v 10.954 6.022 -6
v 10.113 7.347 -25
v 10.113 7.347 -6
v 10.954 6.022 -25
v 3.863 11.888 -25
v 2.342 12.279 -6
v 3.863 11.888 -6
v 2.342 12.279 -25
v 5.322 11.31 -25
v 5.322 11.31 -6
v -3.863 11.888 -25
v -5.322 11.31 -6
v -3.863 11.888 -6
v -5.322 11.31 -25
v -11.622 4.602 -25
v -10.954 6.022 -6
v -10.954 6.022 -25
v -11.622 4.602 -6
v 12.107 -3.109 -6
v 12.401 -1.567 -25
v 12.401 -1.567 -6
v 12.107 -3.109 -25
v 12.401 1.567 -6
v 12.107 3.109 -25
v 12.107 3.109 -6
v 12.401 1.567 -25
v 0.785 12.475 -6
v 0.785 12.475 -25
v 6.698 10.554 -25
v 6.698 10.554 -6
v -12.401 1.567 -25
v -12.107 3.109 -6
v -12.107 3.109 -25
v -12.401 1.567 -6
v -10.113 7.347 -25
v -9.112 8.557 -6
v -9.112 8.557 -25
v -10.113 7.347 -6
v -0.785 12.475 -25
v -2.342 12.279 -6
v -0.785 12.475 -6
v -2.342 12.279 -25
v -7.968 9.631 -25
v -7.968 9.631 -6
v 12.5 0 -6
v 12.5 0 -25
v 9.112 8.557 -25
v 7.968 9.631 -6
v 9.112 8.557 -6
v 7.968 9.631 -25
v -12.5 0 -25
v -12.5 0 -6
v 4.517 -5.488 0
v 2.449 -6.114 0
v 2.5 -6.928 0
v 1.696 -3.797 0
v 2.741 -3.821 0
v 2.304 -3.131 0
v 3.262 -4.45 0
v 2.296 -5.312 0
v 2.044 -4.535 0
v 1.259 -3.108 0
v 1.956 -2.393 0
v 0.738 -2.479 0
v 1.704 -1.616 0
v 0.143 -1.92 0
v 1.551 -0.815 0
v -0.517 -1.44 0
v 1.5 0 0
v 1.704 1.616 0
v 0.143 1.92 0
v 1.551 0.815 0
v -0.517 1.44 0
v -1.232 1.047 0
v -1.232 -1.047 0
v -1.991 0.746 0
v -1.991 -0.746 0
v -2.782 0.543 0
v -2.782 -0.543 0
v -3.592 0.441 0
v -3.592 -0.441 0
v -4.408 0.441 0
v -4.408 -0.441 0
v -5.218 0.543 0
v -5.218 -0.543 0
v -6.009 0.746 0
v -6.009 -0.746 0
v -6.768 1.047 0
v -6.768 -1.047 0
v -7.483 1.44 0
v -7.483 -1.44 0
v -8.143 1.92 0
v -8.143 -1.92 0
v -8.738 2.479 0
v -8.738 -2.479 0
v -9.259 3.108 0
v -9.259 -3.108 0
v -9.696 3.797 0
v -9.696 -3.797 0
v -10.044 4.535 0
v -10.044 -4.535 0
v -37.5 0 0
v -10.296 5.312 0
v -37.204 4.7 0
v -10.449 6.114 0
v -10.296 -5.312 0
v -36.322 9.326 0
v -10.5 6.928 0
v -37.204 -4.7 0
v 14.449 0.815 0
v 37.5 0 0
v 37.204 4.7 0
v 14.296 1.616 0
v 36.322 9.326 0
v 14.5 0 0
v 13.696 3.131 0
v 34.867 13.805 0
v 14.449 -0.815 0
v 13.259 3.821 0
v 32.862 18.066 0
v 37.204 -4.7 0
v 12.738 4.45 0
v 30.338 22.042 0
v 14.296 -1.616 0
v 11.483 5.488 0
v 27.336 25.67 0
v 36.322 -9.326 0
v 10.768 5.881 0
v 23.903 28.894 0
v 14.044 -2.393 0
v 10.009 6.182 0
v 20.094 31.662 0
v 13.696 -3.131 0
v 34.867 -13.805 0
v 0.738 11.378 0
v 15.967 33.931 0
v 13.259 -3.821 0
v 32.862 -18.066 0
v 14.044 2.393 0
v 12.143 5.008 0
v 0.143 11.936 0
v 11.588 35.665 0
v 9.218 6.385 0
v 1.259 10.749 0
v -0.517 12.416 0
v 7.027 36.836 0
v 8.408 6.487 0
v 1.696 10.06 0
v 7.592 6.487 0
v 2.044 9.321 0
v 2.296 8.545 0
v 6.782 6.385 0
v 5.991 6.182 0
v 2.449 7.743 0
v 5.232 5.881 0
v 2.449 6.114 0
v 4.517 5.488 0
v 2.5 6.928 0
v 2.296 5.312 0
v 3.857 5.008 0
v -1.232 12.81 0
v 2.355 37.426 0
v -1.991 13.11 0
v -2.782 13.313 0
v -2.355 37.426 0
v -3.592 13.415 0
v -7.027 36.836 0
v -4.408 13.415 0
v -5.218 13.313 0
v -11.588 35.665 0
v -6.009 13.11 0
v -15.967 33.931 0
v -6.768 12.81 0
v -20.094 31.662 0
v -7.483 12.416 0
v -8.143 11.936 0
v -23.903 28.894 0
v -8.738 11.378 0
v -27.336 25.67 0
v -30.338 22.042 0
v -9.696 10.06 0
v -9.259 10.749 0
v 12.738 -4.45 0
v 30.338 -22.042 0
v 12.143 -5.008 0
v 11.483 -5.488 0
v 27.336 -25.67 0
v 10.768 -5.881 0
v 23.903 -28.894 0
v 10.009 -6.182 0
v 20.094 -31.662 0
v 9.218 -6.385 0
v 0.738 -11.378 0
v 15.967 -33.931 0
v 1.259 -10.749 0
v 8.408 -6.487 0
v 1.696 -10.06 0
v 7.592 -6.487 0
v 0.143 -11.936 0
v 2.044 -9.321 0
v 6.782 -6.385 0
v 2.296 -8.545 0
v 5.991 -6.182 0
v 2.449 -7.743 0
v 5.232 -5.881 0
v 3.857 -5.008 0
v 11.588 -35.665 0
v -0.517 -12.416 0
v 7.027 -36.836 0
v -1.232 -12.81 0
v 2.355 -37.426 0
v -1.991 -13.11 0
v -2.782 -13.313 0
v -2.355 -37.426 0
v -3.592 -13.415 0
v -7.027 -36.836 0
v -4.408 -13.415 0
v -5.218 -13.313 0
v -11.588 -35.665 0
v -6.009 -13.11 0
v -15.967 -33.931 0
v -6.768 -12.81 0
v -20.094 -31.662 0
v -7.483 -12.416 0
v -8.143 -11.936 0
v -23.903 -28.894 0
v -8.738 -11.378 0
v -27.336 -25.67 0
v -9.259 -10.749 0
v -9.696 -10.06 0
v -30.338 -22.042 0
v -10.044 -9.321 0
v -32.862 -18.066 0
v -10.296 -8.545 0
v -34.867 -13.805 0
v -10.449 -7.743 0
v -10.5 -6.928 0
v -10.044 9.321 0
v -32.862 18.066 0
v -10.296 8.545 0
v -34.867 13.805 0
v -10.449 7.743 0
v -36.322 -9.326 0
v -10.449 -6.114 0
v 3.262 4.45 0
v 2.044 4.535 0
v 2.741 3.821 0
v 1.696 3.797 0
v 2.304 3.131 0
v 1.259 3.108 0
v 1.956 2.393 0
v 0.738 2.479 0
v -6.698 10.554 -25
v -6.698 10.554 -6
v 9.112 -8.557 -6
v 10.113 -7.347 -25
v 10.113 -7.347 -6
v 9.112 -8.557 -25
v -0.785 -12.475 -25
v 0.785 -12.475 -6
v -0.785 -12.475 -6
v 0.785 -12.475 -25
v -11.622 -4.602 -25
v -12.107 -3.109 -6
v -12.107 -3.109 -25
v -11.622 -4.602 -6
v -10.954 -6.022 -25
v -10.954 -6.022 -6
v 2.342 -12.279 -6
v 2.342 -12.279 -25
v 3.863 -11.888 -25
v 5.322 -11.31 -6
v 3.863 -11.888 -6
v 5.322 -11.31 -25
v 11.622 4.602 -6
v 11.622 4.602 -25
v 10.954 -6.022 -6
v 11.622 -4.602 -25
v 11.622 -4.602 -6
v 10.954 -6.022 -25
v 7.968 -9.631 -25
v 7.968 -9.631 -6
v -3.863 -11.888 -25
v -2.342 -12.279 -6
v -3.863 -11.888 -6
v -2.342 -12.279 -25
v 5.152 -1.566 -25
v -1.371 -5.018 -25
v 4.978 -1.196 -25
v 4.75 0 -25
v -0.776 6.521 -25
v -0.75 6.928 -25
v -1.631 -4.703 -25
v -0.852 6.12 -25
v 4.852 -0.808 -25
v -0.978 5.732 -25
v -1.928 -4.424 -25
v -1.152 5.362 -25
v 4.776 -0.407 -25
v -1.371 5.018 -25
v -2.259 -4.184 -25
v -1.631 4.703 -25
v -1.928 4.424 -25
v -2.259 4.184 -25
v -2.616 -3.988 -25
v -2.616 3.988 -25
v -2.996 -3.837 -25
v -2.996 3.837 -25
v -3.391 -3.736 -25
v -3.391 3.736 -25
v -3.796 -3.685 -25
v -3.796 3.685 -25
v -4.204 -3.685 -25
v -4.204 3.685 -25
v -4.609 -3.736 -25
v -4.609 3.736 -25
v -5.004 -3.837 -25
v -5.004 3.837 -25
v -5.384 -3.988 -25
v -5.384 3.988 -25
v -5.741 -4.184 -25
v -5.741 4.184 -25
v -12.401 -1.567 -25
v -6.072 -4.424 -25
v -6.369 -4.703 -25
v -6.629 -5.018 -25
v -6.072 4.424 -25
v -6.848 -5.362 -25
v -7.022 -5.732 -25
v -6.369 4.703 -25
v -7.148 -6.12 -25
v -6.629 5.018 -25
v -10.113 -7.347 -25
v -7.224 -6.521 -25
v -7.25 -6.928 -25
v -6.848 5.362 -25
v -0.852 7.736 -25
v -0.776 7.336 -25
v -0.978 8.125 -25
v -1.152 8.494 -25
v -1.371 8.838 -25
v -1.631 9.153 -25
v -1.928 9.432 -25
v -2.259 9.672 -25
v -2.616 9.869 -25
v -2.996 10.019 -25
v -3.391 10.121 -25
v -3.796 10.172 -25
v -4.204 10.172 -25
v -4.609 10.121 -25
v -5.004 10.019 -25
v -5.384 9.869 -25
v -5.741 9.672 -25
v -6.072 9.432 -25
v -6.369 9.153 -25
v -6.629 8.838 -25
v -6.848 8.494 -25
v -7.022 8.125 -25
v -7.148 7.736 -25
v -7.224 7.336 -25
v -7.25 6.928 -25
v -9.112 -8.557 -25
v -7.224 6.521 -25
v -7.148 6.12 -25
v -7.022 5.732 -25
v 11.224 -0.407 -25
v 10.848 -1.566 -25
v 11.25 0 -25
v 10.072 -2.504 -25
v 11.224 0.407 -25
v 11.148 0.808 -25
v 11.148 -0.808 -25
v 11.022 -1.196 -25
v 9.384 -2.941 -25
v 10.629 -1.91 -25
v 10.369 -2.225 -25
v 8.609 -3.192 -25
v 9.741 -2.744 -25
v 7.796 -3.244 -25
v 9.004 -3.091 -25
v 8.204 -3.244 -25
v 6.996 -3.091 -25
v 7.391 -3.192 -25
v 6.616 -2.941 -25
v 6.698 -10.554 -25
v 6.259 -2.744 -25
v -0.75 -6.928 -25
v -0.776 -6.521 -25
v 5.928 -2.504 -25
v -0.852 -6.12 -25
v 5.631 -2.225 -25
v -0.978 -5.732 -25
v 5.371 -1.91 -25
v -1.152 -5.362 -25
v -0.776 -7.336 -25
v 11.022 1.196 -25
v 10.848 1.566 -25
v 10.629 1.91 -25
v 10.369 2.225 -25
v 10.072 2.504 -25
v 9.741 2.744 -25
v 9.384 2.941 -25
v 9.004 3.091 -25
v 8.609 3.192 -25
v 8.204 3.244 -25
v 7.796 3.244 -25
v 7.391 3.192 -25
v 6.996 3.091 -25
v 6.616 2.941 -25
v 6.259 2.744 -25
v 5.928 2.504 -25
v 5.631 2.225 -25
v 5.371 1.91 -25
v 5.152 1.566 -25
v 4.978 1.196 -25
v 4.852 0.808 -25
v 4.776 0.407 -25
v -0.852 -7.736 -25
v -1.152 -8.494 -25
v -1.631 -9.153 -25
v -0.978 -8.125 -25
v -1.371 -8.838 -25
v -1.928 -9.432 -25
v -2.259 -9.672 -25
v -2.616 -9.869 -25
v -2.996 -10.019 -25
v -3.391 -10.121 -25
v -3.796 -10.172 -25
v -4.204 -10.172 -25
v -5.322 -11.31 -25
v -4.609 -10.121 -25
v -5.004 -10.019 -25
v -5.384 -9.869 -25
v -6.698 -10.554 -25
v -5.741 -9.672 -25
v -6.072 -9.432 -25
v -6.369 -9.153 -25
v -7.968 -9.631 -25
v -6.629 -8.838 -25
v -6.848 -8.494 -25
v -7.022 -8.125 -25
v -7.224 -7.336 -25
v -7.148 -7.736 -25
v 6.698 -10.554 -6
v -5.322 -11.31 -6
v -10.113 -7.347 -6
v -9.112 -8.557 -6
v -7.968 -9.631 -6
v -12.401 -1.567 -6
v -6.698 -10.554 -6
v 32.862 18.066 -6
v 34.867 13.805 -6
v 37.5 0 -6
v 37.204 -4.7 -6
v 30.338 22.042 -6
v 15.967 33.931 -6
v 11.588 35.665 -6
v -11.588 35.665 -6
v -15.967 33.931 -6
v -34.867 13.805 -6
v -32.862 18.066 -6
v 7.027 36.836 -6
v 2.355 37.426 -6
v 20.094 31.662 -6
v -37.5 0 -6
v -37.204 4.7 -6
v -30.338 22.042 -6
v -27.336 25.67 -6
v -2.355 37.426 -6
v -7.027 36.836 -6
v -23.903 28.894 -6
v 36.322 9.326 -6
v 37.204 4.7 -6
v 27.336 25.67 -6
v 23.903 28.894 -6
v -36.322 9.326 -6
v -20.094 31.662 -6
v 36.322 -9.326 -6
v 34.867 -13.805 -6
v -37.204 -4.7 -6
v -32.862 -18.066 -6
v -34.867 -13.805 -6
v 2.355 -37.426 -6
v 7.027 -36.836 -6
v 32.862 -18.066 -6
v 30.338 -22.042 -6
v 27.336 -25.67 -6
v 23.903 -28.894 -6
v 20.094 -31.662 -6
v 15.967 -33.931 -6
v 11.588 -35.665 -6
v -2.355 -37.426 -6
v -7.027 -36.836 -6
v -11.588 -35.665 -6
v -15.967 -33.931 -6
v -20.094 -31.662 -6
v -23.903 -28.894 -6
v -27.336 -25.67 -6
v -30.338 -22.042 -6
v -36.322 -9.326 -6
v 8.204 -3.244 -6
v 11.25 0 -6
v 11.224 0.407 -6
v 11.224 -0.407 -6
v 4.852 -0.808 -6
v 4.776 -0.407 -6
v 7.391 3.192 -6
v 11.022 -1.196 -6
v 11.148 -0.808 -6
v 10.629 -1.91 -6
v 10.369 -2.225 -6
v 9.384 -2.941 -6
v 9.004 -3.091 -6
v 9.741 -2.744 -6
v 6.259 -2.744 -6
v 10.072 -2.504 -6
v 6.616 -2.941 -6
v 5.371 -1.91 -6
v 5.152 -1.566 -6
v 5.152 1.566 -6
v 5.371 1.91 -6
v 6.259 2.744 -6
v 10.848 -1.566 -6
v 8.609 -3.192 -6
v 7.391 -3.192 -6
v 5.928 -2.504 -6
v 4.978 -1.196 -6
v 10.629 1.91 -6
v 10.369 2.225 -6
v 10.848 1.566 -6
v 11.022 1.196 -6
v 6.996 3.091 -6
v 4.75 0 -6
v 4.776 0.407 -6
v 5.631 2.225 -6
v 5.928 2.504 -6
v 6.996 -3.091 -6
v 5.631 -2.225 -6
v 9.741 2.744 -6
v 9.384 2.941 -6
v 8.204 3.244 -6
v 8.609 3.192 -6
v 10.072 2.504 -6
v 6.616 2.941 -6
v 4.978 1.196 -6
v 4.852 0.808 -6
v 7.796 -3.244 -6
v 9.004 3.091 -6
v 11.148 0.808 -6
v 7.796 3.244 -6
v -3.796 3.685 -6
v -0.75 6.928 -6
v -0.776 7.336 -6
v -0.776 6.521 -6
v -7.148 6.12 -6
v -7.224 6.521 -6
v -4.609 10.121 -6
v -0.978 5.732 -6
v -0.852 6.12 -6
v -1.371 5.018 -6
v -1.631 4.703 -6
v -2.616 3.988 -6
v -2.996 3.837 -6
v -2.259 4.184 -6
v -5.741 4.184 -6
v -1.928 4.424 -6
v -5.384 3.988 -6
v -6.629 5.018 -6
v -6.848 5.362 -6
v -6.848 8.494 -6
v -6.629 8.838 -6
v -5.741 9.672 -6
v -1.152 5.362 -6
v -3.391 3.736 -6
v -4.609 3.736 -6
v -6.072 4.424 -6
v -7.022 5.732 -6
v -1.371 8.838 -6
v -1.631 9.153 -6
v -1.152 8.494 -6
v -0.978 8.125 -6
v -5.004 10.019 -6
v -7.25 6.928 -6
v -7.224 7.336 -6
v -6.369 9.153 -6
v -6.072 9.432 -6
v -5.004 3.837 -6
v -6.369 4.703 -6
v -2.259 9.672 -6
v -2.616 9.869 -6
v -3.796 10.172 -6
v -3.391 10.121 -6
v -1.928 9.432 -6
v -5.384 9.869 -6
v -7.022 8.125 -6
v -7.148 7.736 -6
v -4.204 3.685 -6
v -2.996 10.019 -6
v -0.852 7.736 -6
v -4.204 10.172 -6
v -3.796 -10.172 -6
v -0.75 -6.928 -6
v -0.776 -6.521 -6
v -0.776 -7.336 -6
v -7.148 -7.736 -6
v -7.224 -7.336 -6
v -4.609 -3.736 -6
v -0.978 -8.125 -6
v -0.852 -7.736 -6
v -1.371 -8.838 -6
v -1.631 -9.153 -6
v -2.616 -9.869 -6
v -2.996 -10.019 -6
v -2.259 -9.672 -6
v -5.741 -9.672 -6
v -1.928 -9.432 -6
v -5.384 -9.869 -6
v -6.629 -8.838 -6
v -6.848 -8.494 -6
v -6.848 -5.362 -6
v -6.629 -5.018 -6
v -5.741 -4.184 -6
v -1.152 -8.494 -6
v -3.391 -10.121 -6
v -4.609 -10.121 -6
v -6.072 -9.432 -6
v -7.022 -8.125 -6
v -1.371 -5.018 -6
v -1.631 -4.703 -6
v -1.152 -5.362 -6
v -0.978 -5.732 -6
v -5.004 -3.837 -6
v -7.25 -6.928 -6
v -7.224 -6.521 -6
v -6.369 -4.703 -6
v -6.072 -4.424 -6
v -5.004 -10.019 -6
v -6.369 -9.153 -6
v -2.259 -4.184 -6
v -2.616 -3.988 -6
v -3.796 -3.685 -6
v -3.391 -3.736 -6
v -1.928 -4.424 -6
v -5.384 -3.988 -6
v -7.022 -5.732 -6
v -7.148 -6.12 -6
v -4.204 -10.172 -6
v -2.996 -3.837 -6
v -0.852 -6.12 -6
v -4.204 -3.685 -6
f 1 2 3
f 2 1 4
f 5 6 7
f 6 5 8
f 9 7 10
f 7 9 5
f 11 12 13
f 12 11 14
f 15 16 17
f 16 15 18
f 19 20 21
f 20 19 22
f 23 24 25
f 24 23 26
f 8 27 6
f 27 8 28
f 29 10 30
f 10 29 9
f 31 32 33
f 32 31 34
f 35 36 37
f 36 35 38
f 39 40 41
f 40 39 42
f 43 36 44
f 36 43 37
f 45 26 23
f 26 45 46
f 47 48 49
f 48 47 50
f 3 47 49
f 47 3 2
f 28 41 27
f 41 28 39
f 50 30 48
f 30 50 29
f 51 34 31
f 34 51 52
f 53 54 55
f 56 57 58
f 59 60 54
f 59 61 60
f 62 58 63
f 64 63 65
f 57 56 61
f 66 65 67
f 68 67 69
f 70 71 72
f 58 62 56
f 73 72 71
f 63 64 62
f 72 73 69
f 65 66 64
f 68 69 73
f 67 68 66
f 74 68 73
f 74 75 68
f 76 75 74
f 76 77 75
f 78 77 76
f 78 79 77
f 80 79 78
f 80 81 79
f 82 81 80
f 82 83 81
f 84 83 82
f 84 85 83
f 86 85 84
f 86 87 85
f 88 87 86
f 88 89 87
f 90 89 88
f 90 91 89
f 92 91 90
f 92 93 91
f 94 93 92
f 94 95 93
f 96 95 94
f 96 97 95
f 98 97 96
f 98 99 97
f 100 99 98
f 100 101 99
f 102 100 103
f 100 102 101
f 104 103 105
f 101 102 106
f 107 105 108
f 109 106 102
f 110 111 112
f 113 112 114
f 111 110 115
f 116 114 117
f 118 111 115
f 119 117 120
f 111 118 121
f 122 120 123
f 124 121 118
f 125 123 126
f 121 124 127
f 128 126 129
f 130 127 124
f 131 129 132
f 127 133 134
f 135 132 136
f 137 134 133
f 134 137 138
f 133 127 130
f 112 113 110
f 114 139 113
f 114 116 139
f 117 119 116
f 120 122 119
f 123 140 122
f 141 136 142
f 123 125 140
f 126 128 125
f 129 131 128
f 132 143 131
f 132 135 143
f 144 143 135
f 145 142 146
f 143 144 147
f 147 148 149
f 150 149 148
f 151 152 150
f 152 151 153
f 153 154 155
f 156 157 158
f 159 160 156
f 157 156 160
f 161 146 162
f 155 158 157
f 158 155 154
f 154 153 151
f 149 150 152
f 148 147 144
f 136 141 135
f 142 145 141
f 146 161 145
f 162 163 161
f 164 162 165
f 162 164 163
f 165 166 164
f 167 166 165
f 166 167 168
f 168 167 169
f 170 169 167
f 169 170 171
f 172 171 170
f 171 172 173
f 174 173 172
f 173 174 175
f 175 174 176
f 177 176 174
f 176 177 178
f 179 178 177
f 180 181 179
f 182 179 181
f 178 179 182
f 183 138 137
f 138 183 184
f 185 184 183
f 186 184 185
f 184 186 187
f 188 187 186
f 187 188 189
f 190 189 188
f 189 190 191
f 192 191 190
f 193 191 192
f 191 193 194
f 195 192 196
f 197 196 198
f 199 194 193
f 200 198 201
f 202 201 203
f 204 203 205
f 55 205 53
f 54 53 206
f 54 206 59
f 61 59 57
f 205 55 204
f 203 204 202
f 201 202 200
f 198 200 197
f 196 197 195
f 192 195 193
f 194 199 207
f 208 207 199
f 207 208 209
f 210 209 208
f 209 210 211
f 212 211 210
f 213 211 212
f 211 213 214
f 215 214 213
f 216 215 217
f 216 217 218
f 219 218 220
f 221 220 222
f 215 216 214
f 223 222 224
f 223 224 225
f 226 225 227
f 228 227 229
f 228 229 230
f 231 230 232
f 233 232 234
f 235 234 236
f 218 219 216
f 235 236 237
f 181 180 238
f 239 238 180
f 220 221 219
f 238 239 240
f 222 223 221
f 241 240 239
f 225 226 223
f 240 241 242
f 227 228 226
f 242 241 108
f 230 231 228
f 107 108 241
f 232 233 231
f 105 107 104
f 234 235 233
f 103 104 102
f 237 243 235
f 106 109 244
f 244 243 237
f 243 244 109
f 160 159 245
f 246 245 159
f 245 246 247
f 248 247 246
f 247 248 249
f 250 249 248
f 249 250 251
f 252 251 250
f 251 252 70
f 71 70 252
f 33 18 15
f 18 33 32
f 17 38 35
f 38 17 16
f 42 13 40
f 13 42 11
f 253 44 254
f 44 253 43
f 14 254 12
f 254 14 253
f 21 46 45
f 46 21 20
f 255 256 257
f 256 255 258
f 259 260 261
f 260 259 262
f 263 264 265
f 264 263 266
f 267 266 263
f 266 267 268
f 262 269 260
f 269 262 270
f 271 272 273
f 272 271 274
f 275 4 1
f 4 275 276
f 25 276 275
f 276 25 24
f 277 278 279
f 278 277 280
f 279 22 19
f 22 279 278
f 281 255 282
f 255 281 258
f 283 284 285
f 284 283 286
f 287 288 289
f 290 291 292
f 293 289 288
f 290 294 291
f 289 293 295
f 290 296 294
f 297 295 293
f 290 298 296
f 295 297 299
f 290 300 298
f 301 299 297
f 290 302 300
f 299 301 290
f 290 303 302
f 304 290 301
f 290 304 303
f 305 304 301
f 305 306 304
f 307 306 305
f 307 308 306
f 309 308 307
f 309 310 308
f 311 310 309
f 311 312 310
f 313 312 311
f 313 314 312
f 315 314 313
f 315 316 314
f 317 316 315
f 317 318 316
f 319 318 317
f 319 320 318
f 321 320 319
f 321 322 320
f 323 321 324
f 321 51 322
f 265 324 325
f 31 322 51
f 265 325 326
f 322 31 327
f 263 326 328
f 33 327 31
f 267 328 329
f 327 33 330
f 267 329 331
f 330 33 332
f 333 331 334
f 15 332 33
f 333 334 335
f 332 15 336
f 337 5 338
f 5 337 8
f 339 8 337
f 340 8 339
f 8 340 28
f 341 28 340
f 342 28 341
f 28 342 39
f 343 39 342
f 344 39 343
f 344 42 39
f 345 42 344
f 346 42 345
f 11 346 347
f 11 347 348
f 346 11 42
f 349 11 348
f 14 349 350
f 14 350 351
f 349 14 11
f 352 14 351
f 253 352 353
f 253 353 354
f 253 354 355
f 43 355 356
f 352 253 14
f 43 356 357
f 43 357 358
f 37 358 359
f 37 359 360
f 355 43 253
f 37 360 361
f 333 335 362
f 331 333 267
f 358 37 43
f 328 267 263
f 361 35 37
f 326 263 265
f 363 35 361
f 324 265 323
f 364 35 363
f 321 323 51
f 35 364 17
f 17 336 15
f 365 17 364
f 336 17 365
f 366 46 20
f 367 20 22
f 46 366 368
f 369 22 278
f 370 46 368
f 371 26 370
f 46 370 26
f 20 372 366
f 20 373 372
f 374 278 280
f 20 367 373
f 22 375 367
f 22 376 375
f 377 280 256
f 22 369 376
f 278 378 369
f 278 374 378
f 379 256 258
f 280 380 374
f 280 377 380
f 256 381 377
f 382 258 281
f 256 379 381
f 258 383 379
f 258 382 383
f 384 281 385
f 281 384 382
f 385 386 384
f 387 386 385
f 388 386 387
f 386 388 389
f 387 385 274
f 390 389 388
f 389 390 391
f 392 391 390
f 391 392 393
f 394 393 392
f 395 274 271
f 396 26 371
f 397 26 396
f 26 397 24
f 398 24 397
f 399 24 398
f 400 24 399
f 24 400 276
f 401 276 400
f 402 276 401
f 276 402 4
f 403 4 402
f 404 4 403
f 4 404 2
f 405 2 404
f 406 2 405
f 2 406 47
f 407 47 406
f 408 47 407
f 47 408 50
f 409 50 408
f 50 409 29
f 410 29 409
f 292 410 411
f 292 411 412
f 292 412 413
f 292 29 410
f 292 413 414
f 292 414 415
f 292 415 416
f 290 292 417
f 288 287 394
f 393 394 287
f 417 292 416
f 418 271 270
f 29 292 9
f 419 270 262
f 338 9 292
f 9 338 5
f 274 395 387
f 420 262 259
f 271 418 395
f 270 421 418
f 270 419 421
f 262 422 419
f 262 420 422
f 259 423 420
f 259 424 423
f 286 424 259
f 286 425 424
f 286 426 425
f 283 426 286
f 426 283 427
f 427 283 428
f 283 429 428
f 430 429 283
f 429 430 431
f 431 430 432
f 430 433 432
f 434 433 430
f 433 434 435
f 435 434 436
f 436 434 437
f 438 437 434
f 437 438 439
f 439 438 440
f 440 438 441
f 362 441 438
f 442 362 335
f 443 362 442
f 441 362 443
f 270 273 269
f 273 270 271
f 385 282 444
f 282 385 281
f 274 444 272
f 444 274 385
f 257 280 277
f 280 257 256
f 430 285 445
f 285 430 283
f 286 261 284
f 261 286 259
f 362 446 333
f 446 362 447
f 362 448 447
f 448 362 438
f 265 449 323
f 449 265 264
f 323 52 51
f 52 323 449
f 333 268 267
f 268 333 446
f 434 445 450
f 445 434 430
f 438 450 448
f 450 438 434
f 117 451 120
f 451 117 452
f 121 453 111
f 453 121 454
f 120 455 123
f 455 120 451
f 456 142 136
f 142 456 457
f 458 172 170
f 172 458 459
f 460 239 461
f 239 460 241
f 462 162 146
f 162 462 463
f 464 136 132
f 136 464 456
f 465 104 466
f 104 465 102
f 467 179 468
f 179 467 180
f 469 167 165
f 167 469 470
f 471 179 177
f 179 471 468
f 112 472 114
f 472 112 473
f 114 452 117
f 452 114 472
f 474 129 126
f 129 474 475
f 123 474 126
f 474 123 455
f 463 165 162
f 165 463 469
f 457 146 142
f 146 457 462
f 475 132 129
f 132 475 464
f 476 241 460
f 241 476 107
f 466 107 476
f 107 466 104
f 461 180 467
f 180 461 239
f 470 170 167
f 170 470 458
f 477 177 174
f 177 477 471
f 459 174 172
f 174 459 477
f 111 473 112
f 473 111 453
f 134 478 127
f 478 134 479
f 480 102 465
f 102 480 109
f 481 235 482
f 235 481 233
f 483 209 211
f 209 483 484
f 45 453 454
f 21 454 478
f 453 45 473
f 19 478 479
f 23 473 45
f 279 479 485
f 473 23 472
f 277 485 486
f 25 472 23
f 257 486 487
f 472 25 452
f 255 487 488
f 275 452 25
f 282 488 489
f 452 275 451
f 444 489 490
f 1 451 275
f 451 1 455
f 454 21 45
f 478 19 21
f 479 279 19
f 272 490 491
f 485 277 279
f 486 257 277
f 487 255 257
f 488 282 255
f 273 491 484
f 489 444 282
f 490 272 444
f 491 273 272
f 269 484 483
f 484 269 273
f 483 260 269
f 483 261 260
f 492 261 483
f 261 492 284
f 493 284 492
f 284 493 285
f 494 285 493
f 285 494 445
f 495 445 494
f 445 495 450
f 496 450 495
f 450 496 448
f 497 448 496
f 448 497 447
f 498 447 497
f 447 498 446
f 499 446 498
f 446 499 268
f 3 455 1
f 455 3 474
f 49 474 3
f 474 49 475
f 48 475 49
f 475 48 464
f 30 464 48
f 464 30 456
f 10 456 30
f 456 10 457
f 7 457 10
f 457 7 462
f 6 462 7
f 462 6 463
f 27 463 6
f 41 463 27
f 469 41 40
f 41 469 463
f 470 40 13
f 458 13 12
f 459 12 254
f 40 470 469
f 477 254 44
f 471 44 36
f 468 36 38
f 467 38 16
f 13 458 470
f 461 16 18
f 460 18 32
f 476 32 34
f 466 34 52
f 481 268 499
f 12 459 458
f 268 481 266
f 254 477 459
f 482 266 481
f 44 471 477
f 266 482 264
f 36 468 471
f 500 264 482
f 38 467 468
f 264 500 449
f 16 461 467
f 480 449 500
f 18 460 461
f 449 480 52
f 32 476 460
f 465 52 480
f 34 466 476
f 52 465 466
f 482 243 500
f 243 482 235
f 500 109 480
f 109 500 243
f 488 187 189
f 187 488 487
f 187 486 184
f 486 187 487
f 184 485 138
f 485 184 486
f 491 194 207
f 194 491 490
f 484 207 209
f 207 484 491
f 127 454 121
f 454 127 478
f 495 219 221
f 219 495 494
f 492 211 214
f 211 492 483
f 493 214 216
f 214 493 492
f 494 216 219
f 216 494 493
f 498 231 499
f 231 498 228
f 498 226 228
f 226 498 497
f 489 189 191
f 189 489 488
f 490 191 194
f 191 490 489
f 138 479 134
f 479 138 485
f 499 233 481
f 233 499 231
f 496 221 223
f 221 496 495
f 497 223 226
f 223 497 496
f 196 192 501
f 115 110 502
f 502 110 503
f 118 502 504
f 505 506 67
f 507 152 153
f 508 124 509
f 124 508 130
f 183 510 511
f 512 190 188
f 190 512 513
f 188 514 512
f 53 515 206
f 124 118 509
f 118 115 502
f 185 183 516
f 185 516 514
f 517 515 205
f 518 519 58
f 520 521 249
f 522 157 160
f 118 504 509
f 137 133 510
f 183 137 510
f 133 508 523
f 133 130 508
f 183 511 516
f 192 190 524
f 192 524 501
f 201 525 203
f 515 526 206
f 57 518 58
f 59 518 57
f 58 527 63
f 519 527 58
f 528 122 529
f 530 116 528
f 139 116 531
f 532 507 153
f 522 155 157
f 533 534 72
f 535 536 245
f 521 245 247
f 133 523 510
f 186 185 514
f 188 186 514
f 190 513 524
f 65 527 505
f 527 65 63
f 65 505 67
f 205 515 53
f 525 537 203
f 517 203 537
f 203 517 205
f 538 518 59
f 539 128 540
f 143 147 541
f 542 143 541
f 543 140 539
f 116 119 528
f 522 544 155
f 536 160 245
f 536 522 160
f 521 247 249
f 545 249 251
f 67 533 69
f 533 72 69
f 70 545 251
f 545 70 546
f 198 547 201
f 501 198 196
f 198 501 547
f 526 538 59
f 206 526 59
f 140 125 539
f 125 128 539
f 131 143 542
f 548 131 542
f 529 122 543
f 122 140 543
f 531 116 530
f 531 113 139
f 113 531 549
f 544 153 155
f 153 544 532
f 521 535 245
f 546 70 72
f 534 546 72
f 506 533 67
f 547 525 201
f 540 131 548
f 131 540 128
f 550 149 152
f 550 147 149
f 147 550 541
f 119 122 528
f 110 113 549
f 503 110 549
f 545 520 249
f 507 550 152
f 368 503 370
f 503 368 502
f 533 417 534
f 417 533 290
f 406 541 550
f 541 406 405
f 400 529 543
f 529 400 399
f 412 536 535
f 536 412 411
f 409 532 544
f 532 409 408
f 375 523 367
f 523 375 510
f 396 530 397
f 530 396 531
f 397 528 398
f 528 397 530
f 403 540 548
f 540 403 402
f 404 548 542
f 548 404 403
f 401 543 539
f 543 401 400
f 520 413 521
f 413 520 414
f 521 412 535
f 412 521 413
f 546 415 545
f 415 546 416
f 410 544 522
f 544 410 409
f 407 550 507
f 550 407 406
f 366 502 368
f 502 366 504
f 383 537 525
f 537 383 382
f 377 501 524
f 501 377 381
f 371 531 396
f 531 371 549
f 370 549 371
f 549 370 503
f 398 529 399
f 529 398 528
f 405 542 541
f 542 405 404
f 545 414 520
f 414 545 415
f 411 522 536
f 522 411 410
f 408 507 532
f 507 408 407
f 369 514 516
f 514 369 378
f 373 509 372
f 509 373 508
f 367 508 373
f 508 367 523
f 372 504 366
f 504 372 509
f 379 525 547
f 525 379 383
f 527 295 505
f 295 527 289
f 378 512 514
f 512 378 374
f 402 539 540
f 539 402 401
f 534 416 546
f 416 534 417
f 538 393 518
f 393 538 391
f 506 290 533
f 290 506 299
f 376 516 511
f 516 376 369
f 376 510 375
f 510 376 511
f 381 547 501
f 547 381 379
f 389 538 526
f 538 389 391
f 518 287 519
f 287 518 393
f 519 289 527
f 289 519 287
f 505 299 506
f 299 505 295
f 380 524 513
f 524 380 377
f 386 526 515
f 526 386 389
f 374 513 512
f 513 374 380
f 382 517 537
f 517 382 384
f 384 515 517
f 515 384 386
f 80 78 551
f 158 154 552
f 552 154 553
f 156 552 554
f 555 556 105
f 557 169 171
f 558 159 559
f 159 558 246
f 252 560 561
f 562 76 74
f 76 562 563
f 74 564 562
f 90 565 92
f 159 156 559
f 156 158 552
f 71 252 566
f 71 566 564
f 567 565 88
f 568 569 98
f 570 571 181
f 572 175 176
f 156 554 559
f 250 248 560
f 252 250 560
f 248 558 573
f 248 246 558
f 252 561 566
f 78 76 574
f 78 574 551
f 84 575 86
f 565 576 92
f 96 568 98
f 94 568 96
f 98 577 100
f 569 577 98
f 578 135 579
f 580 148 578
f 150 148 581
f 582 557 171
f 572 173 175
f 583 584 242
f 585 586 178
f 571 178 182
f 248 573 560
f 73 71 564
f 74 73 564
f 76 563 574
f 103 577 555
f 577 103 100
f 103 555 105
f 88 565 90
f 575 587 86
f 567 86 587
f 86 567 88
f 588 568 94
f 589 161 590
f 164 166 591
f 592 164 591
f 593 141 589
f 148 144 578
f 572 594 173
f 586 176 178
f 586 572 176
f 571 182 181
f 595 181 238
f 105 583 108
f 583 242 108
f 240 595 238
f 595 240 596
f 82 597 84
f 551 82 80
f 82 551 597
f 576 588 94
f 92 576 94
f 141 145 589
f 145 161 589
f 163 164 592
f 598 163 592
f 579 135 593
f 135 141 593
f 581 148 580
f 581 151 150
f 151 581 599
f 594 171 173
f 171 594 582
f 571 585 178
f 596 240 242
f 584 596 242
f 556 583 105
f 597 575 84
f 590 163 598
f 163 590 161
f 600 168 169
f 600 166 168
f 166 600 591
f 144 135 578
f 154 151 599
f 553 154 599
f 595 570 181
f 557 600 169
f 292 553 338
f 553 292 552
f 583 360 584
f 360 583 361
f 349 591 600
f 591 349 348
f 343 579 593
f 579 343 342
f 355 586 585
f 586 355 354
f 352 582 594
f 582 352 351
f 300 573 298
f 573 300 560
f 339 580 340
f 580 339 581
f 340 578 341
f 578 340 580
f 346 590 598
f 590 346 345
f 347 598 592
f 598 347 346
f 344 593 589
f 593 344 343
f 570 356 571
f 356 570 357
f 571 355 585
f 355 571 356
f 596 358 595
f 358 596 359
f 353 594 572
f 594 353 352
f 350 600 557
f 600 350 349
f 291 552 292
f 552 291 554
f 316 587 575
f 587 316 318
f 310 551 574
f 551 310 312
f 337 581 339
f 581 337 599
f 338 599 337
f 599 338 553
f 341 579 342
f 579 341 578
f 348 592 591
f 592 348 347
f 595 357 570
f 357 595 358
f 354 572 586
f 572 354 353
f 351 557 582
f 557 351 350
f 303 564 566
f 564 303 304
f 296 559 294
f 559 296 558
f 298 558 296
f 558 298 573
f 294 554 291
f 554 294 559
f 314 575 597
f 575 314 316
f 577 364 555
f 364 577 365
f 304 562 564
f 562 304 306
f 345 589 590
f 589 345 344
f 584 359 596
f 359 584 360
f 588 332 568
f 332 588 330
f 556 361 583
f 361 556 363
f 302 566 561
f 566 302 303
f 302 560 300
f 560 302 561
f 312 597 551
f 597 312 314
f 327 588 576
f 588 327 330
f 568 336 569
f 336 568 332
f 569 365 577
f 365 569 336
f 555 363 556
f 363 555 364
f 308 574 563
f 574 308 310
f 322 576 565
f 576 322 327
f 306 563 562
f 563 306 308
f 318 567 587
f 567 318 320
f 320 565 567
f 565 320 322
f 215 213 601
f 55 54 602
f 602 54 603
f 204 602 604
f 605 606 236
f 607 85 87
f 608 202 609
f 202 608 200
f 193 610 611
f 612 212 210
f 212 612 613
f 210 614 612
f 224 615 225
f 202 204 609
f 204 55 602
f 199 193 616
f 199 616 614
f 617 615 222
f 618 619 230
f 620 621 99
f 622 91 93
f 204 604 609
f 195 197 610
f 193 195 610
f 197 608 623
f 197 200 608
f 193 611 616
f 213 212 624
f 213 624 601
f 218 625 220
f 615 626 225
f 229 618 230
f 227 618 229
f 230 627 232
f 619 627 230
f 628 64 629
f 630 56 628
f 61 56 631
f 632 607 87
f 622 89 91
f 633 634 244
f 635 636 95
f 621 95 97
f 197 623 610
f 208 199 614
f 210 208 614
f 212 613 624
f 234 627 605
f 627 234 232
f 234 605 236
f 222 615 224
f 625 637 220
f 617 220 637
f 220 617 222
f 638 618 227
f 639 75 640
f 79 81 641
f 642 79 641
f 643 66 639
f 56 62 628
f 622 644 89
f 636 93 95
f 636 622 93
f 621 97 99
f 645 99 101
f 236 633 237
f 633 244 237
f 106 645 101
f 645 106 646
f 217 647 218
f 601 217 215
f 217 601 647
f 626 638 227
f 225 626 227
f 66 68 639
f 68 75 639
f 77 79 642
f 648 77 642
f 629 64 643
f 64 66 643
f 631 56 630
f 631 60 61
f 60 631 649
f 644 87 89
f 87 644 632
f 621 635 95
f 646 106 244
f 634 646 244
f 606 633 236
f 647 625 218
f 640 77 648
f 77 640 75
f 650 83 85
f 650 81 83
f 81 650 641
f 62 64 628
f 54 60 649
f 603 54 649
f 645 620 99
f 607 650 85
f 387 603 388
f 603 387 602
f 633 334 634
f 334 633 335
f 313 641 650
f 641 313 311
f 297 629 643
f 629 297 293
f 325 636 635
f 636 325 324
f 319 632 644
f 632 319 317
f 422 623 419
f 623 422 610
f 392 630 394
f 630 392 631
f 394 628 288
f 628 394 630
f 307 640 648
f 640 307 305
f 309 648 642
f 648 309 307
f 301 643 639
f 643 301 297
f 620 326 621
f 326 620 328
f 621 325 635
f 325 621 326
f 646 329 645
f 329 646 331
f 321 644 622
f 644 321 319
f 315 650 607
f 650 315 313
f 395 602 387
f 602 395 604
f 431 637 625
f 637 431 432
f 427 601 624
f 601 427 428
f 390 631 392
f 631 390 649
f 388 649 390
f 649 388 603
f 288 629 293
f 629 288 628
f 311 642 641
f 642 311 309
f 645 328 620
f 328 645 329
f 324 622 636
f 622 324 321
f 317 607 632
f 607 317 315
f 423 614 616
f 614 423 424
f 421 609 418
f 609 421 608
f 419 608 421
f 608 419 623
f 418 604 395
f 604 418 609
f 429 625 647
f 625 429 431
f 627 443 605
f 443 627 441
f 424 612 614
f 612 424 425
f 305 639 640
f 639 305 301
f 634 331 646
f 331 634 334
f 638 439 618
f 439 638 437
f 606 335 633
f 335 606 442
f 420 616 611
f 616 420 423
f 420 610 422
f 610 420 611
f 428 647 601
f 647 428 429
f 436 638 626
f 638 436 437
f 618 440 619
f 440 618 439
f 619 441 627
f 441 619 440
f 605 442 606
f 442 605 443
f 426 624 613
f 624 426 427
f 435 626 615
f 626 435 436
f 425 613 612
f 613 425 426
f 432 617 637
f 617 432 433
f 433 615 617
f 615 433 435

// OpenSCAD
$fn = 50;


difference() {
	union() {
		translate(v = [0, 0, -25.0000000000]) {
			cylinder(h = 25, r = 12.5000000000);
		}
		translate(v = [0, 0, -6.0000000000]) {
			cylinder(h = 6, r = 37.5000000000);
		}
	}
	union() {
		translate(v = [8.0000000000, 0.0000000000, 0]) {
			rotate(a = [0, 0, 0]) {
				difference() {
					union() {
						#translate(v = [0, 0, -25.0000000000]) {
							cylinder(h = 25, r = 2.2500000000);
						}
						#translate(v = [0, 0, -6]) {
							cylinder(h = 6, r = 12.5000000000, r1 = 3.2500000000, r2 = 6.5000000000);
						}
						#translate(v = [0, 0, -25.0000000000]) {
							cylinder(h = 25, r = 3.2500000000);
						}
						#translate(v = [0, 0, -25.0000000000]) {
							cylinder(h = 25, r = 2.2500000000);
						}
					}
					union();
				}
			}
		}
		translate(v = [-4.0000000000, 6.9282032303, 0]) {
			rotate(a = [0, 0, 0]) {
				difference() {
					union() {
						#translate(v = [0, 0, -25.0000000000]) {
							cylinder(h = 25, r = 2.2500000000);
						}
						#translate(v = [0, 0, -6]) {
							cylinder(h = 6, r = 12.5000000000, r1 = 3.2500000000, r2 = 6.5000000000);
						}
						#translate(v = [0, 0, -25.0000000000]) {
							cylinder(h = 25, r = 3.2500000000);
						}
						#translate(v = [0, 0, -25.0000000000]) {
							cylinder(h = 25, r = 2.2500000000);
						}
					}
					union();
				}
			}
		}
		translate(v = [-4.0000000000, -6.9282032303, 0]) {
			rotate(a = [0, 0, 0]) {
				difference() {
					union() {
						#translate(v = [0, 0, -25.0000000000]) {
							cylinder(h = 25, r = 2.2500000000);
						}
						#translate(v = [0, 0, -6]) {
							cylinder(h = 6, r = 12.5000000000, r1 = 3.2500000000, r2 = 6.5000000000);
						}
						#translate(v = [0, 0, -25.0000000000]) {
							cylinder(h = 25, r = 3.2500000000);
						}
						#translate(v = [0, 0, -25.0000000000]) {
							cylinder(h = 25, r = 2.2500000000);
						}
					}
					union();
				}
			}
		}
	}
}
